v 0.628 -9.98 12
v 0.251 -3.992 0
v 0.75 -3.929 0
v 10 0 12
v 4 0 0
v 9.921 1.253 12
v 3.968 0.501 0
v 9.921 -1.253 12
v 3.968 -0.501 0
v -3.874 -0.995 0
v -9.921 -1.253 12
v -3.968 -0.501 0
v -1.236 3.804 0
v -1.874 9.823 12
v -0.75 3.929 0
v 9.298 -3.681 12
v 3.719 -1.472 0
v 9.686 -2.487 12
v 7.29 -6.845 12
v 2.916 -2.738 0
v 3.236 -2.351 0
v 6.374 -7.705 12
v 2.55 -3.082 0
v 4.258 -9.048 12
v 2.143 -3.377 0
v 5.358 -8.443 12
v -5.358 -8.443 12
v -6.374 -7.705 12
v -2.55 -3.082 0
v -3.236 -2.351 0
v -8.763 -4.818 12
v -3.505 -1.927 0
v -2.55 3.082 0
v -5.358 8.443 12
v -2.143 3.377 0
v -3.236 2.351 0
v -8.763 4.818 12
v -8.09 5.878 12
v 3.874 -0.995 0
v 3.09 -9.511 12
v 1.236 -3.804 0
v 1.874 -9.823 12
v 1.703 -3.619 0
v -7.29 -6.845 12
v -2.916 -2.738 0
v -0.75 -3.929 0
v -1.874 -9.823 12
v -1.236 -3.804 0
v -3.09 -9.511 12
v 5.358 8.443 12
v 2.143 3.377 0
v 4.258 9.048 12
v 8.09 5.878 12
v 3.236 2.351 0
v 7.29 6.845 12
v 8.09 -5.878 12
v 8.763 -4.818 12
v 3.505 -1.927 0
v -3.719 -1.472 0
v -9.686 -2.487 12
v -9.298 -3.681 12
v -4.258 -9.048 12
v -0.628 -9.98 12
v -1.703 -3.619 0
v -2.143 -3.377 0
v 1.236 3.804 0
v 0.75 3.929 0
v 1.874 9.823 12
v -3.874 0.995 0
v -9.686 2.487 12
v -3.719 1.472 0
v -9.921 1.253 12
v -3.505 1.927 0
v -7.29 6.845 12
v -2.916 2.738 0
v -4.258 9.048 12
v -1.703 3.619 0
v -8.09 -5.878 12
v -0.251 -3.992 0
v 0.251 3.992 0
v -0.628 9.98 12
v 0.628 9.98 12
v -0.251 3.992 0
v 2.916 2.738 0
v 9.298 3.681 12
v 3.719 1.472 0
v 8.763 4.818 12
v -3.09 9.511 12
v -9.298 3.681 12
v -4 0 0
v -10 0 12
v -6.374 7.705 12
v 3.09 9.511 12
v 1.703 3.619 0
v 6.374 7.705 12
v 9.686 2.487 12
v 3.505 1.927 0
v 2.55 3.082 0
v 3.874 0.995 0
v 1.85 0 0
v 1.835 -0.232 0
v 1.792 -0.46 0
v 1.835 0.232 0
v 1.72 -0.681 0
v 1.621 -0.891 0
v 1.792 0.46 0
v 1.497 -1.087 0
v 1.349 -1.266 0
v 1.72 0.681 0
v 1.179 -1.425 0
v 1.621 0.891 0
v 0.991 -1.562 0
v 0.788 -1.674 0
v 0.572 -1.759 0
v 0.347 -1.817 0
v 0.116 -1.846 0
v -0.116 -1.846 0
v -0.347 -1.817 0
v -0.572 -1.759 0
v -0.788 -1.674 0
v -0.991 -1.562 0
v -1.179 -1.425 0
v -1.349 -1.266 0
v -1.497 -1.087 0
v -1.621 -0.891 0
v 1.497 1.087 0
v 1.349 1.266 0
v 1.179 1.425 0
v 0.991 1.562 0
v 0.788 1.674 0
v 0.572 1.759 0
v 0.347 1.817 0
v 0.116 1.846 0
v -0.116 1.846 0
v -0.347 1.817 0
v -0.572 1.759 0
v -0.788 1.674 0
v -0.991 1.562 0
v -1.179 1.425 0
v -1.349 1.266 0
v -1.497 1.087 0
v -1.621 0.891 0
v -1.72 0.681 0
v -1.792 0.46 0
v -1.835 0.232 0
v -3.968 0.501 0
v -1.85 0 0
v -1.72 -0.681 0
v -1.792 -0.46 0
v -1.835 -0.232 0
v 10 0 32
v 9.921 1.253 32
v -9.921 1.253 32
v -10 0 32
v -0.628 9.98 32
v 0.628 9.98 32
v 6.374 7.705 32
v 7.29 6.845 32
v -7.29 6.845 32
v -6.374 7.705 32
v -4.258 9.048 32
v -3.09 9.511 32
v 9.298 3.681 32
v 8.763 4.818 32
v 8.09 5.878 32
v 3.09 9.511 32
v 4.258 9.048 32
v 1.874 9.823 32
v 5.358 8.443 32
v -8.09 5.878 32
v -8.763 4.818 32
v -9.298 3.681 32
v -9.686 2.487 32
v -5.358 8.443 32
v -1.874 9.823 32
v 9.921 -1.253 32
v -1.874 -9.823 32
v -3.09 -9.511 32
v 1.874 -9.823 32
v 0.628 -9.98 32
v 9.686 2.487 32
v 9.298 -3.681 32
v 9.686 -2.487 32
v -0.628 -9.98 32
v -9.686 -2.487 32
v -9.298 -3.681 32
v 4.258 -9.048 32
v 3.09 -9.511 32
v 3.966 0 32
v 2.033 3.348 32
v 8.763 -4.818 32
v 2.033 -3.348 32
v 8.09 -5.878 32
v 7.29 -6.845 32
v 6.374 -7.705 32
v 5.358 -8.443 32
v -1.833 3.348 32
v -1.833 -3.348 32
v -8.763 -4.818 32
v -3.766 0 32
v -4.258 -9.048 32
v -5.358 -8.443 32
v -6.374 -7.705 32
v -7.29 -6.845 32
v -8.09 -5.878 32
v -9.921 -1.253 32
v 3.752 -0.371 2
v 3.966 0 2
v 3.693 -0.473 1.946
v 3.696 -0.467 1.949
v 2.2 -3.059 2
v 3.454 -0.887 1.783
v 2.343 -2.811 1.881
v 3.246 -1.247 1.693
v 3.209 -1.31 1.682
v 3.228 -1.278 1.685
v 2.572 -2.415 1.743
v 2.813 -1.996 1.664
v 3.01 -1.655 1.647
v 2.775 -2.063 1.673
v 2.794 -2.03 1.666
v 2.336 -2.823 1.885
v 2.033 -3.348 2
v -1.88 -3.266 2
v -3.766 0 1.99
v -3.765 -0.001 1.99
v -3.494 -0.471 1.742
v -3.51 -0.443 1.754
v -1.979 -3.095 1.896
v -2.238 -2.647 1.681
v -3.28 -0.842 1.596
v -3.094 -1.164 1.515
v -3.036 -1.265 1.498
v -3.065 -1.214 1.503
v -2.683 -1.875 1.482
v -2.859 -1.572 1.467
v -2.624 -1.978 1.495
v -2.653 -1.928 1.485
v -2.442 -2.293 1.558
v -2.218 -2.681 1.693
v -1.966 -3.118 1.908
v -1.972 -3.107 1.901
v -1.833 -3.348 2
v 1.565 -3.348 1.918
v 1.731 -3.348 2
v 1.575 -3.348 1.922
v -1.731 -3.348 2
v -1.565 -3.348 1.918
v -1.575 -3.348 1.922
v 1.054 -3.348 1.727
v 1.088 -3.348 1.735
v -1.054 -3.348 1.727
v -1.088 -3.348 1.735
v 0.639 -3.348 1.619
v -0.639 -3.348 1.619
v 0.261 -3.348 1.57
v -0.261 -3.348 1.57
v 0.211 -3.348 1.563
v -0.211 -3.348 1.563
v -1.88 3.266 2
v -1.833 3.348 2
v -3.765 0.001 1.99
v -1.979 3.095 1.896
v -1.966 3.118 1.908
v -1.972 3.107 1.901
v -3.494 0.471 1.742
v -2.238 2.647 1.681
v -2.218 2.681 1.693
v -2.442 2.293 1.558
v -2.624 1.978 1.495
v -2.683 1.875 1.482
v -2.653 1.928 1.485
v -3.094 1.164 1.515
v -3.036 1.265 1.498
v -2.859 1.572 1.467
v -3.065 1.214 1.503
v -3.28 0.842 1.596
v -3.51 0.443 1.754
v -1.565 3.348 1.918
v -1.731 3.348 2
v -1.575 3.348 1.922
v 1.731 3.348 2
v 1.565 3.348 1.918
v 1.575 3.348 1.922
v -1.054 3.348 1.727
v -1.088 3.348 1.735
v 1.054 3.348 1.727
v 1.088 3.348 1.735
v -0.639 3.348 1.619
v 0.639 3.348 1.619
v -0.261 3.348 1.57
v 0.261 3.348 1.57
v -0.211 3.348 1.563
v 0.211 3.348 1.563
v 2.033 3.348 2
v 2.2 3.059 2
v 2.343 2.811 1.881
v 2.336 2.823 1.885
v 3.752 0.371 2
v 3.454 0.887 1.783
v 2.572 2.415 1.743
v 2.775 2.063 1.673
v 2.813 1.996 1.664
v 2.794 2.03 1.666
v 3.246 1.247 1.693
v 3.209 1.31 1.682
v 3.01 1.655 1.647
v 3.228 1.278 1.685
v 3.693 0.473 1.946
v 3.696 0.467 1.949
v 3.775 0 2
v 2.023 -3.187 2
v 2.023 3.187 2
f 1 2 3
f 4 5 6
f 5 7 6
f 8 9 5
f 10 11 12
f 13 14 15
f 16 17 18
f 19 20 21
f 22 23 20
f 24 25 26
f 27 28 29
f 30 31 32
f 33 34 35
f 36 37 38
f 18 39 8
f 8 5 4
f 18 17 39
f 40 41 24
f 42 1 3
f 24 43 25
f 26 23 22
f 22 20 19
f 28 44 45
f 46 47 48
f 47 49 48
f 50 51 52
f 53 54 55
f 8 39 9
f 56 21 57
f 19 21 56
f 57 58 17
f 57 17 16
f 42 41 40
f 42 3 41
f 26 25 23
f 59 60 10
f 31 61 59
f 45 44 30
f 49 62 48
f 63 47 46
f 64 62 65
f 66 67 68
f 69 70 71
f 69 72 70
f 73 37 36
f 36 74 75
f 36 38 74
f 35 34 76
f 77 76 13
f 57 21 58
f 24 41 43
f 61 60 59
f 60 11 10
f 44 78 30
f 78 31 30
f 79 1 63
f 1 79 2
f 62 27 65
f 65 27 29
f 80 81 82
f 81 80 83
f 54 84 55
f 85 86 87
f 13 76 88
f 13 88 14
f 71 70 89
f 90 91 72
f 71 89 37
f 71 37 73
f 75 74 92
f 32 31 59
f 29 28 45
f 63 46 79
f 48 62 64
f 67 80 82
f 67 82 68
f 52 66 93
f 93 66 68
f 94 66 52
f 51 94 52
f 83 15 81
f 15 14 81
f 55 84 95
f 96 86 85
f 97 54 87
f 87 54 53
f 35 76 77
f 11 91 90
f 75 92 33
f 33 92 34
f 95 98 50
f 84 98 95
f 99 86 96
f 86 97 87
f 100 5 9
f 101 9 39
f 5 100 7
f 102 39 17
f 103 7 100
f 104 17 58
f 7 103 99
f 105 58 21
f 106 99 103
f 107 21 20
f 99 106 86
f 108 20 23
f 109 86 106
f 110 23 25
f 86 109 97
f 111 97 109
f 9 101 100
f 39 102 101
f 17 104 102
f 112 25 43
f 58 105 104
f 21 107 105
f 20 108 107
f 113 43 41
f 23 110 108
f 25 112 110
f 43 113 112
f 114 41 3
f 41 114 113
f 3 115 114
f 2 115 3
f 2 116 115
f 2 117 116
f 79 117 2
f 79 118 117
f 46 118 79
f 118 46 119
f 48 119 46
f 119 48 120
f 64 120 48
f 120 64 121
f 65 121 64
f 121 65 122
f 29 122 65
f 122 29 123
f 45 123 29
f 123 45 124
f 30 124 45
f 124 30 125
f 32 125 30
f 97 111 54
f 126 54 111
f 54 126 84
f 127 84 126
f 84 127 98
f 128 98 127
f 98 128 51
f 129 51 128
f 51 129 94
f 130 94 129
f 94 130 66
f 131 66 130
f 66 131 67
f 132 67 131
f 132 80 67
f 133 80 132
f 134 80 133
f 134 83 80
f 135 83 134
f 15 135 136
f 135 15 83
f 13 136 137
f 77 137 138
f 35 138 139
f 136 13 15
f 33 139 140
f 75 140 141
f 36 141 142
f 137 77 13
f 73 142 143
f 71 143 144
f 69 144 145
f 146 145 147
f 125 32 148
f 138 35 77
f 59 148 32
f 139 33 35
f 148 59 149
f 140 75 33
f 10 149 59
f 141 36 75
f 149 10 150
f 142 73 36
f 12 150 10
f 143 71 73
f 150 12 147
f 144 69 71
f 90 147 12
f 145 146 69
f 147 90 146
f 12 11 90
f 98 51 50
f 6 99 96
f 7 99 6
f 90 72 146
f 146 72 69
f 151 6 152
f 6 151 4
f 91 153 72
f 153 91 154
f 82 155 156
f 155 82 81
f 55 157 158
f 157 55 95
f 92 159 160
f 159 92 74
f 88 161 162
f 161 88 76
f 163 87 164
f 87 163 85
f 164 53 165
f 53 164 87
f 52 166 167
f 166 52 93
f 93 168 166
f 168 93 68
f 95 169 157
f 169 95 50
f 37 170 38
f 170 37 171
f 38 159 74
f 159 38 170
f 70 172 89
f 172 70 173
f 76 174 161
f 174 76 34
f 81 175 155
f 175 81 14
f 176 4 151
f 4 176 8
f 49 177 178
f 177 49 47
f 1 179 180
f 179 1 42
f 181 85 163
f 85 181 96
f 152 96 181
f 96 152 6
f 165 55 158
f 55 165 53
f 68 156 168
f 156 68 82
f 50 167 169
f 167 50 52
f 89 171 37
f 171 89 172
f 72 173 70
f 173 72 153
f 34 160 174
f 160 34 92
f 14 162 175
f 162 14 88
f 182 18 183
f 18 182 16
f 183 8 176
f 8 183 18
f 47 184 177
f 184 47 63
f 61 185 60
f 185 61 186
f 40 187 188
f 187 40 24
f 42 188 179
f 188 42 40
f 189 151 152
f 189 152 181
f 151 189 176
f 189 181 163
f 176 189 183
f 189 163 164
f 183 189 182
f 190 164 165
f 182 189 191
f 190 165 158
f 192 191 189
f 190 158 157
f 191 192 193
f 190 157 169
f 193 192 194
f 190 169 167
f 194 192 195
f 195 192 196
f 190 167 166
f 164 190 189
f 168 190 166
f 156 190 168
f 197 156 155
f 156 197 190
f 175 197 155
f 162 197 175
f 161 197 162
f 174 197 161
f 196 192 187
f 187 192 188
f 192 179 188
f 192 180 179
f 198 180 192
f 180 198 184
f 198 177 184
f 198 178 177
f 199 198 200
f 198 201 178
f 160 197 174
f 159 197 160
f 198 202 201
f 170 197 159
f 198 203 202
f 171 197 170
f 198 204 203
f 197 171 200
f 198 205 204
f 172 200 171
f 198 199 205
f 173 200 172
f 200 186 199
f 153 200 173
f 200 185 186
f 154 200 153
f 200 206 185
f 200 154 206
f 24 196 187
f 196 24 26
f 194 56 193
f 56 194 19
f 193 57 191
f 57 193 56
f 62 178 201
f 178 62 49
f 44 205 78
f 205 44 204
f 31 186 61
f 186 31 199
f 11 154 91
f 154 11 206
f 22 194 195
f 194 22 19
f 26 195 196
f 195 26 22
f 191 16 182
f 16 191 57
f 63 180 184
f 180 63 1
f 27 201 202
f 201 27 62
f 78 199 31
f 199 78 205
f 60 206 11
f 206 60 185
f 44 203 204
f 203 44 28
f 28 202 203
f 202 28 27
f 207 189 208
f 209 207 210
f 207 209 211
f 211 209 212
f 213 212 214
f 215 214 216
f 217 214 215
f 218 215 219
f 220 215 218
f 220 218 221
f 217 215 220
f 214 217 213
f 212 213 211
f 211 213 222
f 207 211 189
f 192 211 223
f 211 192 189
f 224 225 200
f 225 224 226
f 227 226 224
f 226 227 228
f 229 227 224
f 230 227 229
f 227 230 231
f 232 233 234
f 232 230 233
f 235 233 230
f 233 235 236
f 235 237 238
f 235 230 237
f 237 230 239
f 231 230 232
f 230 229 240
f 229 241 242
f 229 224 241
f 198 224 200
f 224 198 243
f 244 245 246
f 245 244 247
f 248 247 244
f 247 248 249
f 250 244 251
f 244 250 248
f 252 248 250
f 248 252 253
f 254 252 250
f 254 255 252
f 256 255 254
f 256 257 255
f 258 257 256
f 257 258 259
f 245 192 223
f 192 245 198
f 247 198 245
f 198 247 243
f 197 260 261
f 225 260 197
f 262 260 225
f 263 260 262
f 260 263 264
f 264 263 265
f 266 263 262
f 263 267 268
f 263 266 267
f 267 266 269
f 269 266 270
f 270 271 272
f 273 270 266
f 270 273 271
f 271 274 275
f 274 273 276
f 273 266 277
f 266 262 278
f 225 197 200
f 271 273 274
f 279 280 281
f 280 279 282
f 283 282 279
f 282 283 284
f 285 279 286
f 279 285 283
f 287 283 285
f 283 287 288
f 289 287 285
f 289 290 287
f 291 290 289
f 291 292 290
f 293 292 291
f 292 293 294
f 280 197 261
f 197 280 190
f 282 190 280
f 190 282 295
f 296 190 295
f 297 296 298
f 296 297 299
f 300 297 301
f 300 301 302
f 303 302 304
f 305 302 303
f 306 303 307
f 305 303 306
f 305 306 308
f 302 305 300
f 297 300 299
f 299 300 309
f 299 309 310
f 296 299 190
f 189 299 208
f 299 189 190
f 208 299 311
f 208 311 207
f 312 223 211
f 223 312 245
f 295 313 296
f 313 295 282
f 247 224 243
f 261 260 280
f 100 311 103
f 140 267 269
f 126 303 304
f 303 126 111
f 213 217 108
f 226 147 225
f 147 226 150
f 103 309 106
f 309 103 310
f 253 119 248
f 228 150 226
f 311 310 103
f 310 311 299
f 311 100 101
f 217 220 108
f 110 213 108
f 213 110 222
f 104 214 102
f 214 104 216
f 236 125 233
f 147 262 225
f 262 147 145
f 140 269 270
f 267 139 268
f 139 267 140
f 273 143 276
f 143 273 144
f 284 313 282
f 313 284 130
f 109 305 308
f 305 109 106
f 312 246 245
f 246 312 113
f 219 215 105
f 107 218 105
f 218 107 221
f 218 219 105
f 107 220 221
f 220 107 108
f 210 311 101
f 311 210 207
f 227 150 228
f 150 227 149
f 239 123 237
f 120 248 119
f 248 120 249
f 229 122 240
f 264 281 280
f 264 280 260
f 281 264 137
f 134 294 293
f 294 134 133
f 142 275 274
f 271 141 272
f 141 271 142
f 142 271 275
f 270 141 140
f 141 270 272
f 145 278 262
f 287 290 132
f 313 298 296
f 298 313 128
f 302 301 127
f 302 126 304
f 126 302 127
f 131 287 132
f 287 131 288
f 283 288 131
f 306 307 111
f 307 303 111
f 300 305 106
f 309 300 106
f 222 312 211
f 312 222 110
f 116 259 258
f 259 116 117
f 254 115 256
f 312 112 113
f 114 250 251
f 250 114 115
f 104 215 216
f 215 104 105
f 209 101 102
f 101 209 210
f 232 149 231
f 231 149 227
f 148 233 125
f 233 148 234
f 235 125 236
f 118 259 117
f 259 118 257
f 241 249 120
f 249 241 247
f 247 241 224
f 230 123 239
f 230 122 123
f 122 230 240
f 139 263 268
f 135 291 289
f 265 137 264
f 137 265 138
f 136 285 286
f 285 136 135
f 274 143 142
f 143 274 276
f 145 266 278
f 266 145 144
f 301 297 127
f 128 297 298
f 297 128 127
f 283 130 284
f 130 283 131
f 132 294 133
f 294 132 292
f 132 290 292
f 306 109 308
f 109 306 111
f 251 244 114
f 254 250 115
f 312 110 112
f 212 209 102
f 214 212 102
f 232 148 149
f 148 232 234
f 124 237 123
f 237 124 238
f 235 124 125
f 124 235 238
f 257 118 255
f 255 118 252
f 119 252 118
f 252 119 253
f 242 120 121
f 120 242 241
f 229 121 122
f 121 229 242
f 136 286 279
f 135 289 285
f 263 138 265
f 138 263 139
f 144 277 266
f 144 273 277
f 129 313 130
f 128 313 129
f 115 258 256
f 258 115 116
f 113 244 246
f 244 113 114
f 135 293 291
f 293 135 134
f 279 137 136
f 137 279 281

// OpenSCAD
$fn = 50;


difference() {
	union() {
		cylinder(h = 12, r1 = 4, r2 = 10);
		translate(v = [0, 0, 12.0000000000]) {
			cylinder(h = 20, r = 10);
		}
	}
	union() {
		translate(v = [0, 0, 0]) {
			rotate(a = [0, 0, 0]) {
				difference() {
					union() {
						translate(v = [0.1000000000, 0, 0]) {
							#linear_extrude(height = 228.2000000000) {
								polygon(points = [[3.8658550000, 0.0000000000], [1.9329275000, 3.3479286373], [-1.9329275000, 3.3479286373], [-3.8658550000, 0.0000000000], [-1.9329275000, -3.3479286373], [1.9329275000, -3.3479286373]]);
							}
						}
						#translate(v = [0, 0, -121.8000000000]) {
							cylinder(h = 150, r = 1.8500000000);
						}
					}
					union() {
						difference() {
							#cylinder(h = 2, r1 = 9.8500000000, r2 = 11.7750000000);
							#cylinder(h = 2, r1 = 1.8500000000, r2 = 3.7750000000);
						}
					}
				}
			}
		}
	}
}
